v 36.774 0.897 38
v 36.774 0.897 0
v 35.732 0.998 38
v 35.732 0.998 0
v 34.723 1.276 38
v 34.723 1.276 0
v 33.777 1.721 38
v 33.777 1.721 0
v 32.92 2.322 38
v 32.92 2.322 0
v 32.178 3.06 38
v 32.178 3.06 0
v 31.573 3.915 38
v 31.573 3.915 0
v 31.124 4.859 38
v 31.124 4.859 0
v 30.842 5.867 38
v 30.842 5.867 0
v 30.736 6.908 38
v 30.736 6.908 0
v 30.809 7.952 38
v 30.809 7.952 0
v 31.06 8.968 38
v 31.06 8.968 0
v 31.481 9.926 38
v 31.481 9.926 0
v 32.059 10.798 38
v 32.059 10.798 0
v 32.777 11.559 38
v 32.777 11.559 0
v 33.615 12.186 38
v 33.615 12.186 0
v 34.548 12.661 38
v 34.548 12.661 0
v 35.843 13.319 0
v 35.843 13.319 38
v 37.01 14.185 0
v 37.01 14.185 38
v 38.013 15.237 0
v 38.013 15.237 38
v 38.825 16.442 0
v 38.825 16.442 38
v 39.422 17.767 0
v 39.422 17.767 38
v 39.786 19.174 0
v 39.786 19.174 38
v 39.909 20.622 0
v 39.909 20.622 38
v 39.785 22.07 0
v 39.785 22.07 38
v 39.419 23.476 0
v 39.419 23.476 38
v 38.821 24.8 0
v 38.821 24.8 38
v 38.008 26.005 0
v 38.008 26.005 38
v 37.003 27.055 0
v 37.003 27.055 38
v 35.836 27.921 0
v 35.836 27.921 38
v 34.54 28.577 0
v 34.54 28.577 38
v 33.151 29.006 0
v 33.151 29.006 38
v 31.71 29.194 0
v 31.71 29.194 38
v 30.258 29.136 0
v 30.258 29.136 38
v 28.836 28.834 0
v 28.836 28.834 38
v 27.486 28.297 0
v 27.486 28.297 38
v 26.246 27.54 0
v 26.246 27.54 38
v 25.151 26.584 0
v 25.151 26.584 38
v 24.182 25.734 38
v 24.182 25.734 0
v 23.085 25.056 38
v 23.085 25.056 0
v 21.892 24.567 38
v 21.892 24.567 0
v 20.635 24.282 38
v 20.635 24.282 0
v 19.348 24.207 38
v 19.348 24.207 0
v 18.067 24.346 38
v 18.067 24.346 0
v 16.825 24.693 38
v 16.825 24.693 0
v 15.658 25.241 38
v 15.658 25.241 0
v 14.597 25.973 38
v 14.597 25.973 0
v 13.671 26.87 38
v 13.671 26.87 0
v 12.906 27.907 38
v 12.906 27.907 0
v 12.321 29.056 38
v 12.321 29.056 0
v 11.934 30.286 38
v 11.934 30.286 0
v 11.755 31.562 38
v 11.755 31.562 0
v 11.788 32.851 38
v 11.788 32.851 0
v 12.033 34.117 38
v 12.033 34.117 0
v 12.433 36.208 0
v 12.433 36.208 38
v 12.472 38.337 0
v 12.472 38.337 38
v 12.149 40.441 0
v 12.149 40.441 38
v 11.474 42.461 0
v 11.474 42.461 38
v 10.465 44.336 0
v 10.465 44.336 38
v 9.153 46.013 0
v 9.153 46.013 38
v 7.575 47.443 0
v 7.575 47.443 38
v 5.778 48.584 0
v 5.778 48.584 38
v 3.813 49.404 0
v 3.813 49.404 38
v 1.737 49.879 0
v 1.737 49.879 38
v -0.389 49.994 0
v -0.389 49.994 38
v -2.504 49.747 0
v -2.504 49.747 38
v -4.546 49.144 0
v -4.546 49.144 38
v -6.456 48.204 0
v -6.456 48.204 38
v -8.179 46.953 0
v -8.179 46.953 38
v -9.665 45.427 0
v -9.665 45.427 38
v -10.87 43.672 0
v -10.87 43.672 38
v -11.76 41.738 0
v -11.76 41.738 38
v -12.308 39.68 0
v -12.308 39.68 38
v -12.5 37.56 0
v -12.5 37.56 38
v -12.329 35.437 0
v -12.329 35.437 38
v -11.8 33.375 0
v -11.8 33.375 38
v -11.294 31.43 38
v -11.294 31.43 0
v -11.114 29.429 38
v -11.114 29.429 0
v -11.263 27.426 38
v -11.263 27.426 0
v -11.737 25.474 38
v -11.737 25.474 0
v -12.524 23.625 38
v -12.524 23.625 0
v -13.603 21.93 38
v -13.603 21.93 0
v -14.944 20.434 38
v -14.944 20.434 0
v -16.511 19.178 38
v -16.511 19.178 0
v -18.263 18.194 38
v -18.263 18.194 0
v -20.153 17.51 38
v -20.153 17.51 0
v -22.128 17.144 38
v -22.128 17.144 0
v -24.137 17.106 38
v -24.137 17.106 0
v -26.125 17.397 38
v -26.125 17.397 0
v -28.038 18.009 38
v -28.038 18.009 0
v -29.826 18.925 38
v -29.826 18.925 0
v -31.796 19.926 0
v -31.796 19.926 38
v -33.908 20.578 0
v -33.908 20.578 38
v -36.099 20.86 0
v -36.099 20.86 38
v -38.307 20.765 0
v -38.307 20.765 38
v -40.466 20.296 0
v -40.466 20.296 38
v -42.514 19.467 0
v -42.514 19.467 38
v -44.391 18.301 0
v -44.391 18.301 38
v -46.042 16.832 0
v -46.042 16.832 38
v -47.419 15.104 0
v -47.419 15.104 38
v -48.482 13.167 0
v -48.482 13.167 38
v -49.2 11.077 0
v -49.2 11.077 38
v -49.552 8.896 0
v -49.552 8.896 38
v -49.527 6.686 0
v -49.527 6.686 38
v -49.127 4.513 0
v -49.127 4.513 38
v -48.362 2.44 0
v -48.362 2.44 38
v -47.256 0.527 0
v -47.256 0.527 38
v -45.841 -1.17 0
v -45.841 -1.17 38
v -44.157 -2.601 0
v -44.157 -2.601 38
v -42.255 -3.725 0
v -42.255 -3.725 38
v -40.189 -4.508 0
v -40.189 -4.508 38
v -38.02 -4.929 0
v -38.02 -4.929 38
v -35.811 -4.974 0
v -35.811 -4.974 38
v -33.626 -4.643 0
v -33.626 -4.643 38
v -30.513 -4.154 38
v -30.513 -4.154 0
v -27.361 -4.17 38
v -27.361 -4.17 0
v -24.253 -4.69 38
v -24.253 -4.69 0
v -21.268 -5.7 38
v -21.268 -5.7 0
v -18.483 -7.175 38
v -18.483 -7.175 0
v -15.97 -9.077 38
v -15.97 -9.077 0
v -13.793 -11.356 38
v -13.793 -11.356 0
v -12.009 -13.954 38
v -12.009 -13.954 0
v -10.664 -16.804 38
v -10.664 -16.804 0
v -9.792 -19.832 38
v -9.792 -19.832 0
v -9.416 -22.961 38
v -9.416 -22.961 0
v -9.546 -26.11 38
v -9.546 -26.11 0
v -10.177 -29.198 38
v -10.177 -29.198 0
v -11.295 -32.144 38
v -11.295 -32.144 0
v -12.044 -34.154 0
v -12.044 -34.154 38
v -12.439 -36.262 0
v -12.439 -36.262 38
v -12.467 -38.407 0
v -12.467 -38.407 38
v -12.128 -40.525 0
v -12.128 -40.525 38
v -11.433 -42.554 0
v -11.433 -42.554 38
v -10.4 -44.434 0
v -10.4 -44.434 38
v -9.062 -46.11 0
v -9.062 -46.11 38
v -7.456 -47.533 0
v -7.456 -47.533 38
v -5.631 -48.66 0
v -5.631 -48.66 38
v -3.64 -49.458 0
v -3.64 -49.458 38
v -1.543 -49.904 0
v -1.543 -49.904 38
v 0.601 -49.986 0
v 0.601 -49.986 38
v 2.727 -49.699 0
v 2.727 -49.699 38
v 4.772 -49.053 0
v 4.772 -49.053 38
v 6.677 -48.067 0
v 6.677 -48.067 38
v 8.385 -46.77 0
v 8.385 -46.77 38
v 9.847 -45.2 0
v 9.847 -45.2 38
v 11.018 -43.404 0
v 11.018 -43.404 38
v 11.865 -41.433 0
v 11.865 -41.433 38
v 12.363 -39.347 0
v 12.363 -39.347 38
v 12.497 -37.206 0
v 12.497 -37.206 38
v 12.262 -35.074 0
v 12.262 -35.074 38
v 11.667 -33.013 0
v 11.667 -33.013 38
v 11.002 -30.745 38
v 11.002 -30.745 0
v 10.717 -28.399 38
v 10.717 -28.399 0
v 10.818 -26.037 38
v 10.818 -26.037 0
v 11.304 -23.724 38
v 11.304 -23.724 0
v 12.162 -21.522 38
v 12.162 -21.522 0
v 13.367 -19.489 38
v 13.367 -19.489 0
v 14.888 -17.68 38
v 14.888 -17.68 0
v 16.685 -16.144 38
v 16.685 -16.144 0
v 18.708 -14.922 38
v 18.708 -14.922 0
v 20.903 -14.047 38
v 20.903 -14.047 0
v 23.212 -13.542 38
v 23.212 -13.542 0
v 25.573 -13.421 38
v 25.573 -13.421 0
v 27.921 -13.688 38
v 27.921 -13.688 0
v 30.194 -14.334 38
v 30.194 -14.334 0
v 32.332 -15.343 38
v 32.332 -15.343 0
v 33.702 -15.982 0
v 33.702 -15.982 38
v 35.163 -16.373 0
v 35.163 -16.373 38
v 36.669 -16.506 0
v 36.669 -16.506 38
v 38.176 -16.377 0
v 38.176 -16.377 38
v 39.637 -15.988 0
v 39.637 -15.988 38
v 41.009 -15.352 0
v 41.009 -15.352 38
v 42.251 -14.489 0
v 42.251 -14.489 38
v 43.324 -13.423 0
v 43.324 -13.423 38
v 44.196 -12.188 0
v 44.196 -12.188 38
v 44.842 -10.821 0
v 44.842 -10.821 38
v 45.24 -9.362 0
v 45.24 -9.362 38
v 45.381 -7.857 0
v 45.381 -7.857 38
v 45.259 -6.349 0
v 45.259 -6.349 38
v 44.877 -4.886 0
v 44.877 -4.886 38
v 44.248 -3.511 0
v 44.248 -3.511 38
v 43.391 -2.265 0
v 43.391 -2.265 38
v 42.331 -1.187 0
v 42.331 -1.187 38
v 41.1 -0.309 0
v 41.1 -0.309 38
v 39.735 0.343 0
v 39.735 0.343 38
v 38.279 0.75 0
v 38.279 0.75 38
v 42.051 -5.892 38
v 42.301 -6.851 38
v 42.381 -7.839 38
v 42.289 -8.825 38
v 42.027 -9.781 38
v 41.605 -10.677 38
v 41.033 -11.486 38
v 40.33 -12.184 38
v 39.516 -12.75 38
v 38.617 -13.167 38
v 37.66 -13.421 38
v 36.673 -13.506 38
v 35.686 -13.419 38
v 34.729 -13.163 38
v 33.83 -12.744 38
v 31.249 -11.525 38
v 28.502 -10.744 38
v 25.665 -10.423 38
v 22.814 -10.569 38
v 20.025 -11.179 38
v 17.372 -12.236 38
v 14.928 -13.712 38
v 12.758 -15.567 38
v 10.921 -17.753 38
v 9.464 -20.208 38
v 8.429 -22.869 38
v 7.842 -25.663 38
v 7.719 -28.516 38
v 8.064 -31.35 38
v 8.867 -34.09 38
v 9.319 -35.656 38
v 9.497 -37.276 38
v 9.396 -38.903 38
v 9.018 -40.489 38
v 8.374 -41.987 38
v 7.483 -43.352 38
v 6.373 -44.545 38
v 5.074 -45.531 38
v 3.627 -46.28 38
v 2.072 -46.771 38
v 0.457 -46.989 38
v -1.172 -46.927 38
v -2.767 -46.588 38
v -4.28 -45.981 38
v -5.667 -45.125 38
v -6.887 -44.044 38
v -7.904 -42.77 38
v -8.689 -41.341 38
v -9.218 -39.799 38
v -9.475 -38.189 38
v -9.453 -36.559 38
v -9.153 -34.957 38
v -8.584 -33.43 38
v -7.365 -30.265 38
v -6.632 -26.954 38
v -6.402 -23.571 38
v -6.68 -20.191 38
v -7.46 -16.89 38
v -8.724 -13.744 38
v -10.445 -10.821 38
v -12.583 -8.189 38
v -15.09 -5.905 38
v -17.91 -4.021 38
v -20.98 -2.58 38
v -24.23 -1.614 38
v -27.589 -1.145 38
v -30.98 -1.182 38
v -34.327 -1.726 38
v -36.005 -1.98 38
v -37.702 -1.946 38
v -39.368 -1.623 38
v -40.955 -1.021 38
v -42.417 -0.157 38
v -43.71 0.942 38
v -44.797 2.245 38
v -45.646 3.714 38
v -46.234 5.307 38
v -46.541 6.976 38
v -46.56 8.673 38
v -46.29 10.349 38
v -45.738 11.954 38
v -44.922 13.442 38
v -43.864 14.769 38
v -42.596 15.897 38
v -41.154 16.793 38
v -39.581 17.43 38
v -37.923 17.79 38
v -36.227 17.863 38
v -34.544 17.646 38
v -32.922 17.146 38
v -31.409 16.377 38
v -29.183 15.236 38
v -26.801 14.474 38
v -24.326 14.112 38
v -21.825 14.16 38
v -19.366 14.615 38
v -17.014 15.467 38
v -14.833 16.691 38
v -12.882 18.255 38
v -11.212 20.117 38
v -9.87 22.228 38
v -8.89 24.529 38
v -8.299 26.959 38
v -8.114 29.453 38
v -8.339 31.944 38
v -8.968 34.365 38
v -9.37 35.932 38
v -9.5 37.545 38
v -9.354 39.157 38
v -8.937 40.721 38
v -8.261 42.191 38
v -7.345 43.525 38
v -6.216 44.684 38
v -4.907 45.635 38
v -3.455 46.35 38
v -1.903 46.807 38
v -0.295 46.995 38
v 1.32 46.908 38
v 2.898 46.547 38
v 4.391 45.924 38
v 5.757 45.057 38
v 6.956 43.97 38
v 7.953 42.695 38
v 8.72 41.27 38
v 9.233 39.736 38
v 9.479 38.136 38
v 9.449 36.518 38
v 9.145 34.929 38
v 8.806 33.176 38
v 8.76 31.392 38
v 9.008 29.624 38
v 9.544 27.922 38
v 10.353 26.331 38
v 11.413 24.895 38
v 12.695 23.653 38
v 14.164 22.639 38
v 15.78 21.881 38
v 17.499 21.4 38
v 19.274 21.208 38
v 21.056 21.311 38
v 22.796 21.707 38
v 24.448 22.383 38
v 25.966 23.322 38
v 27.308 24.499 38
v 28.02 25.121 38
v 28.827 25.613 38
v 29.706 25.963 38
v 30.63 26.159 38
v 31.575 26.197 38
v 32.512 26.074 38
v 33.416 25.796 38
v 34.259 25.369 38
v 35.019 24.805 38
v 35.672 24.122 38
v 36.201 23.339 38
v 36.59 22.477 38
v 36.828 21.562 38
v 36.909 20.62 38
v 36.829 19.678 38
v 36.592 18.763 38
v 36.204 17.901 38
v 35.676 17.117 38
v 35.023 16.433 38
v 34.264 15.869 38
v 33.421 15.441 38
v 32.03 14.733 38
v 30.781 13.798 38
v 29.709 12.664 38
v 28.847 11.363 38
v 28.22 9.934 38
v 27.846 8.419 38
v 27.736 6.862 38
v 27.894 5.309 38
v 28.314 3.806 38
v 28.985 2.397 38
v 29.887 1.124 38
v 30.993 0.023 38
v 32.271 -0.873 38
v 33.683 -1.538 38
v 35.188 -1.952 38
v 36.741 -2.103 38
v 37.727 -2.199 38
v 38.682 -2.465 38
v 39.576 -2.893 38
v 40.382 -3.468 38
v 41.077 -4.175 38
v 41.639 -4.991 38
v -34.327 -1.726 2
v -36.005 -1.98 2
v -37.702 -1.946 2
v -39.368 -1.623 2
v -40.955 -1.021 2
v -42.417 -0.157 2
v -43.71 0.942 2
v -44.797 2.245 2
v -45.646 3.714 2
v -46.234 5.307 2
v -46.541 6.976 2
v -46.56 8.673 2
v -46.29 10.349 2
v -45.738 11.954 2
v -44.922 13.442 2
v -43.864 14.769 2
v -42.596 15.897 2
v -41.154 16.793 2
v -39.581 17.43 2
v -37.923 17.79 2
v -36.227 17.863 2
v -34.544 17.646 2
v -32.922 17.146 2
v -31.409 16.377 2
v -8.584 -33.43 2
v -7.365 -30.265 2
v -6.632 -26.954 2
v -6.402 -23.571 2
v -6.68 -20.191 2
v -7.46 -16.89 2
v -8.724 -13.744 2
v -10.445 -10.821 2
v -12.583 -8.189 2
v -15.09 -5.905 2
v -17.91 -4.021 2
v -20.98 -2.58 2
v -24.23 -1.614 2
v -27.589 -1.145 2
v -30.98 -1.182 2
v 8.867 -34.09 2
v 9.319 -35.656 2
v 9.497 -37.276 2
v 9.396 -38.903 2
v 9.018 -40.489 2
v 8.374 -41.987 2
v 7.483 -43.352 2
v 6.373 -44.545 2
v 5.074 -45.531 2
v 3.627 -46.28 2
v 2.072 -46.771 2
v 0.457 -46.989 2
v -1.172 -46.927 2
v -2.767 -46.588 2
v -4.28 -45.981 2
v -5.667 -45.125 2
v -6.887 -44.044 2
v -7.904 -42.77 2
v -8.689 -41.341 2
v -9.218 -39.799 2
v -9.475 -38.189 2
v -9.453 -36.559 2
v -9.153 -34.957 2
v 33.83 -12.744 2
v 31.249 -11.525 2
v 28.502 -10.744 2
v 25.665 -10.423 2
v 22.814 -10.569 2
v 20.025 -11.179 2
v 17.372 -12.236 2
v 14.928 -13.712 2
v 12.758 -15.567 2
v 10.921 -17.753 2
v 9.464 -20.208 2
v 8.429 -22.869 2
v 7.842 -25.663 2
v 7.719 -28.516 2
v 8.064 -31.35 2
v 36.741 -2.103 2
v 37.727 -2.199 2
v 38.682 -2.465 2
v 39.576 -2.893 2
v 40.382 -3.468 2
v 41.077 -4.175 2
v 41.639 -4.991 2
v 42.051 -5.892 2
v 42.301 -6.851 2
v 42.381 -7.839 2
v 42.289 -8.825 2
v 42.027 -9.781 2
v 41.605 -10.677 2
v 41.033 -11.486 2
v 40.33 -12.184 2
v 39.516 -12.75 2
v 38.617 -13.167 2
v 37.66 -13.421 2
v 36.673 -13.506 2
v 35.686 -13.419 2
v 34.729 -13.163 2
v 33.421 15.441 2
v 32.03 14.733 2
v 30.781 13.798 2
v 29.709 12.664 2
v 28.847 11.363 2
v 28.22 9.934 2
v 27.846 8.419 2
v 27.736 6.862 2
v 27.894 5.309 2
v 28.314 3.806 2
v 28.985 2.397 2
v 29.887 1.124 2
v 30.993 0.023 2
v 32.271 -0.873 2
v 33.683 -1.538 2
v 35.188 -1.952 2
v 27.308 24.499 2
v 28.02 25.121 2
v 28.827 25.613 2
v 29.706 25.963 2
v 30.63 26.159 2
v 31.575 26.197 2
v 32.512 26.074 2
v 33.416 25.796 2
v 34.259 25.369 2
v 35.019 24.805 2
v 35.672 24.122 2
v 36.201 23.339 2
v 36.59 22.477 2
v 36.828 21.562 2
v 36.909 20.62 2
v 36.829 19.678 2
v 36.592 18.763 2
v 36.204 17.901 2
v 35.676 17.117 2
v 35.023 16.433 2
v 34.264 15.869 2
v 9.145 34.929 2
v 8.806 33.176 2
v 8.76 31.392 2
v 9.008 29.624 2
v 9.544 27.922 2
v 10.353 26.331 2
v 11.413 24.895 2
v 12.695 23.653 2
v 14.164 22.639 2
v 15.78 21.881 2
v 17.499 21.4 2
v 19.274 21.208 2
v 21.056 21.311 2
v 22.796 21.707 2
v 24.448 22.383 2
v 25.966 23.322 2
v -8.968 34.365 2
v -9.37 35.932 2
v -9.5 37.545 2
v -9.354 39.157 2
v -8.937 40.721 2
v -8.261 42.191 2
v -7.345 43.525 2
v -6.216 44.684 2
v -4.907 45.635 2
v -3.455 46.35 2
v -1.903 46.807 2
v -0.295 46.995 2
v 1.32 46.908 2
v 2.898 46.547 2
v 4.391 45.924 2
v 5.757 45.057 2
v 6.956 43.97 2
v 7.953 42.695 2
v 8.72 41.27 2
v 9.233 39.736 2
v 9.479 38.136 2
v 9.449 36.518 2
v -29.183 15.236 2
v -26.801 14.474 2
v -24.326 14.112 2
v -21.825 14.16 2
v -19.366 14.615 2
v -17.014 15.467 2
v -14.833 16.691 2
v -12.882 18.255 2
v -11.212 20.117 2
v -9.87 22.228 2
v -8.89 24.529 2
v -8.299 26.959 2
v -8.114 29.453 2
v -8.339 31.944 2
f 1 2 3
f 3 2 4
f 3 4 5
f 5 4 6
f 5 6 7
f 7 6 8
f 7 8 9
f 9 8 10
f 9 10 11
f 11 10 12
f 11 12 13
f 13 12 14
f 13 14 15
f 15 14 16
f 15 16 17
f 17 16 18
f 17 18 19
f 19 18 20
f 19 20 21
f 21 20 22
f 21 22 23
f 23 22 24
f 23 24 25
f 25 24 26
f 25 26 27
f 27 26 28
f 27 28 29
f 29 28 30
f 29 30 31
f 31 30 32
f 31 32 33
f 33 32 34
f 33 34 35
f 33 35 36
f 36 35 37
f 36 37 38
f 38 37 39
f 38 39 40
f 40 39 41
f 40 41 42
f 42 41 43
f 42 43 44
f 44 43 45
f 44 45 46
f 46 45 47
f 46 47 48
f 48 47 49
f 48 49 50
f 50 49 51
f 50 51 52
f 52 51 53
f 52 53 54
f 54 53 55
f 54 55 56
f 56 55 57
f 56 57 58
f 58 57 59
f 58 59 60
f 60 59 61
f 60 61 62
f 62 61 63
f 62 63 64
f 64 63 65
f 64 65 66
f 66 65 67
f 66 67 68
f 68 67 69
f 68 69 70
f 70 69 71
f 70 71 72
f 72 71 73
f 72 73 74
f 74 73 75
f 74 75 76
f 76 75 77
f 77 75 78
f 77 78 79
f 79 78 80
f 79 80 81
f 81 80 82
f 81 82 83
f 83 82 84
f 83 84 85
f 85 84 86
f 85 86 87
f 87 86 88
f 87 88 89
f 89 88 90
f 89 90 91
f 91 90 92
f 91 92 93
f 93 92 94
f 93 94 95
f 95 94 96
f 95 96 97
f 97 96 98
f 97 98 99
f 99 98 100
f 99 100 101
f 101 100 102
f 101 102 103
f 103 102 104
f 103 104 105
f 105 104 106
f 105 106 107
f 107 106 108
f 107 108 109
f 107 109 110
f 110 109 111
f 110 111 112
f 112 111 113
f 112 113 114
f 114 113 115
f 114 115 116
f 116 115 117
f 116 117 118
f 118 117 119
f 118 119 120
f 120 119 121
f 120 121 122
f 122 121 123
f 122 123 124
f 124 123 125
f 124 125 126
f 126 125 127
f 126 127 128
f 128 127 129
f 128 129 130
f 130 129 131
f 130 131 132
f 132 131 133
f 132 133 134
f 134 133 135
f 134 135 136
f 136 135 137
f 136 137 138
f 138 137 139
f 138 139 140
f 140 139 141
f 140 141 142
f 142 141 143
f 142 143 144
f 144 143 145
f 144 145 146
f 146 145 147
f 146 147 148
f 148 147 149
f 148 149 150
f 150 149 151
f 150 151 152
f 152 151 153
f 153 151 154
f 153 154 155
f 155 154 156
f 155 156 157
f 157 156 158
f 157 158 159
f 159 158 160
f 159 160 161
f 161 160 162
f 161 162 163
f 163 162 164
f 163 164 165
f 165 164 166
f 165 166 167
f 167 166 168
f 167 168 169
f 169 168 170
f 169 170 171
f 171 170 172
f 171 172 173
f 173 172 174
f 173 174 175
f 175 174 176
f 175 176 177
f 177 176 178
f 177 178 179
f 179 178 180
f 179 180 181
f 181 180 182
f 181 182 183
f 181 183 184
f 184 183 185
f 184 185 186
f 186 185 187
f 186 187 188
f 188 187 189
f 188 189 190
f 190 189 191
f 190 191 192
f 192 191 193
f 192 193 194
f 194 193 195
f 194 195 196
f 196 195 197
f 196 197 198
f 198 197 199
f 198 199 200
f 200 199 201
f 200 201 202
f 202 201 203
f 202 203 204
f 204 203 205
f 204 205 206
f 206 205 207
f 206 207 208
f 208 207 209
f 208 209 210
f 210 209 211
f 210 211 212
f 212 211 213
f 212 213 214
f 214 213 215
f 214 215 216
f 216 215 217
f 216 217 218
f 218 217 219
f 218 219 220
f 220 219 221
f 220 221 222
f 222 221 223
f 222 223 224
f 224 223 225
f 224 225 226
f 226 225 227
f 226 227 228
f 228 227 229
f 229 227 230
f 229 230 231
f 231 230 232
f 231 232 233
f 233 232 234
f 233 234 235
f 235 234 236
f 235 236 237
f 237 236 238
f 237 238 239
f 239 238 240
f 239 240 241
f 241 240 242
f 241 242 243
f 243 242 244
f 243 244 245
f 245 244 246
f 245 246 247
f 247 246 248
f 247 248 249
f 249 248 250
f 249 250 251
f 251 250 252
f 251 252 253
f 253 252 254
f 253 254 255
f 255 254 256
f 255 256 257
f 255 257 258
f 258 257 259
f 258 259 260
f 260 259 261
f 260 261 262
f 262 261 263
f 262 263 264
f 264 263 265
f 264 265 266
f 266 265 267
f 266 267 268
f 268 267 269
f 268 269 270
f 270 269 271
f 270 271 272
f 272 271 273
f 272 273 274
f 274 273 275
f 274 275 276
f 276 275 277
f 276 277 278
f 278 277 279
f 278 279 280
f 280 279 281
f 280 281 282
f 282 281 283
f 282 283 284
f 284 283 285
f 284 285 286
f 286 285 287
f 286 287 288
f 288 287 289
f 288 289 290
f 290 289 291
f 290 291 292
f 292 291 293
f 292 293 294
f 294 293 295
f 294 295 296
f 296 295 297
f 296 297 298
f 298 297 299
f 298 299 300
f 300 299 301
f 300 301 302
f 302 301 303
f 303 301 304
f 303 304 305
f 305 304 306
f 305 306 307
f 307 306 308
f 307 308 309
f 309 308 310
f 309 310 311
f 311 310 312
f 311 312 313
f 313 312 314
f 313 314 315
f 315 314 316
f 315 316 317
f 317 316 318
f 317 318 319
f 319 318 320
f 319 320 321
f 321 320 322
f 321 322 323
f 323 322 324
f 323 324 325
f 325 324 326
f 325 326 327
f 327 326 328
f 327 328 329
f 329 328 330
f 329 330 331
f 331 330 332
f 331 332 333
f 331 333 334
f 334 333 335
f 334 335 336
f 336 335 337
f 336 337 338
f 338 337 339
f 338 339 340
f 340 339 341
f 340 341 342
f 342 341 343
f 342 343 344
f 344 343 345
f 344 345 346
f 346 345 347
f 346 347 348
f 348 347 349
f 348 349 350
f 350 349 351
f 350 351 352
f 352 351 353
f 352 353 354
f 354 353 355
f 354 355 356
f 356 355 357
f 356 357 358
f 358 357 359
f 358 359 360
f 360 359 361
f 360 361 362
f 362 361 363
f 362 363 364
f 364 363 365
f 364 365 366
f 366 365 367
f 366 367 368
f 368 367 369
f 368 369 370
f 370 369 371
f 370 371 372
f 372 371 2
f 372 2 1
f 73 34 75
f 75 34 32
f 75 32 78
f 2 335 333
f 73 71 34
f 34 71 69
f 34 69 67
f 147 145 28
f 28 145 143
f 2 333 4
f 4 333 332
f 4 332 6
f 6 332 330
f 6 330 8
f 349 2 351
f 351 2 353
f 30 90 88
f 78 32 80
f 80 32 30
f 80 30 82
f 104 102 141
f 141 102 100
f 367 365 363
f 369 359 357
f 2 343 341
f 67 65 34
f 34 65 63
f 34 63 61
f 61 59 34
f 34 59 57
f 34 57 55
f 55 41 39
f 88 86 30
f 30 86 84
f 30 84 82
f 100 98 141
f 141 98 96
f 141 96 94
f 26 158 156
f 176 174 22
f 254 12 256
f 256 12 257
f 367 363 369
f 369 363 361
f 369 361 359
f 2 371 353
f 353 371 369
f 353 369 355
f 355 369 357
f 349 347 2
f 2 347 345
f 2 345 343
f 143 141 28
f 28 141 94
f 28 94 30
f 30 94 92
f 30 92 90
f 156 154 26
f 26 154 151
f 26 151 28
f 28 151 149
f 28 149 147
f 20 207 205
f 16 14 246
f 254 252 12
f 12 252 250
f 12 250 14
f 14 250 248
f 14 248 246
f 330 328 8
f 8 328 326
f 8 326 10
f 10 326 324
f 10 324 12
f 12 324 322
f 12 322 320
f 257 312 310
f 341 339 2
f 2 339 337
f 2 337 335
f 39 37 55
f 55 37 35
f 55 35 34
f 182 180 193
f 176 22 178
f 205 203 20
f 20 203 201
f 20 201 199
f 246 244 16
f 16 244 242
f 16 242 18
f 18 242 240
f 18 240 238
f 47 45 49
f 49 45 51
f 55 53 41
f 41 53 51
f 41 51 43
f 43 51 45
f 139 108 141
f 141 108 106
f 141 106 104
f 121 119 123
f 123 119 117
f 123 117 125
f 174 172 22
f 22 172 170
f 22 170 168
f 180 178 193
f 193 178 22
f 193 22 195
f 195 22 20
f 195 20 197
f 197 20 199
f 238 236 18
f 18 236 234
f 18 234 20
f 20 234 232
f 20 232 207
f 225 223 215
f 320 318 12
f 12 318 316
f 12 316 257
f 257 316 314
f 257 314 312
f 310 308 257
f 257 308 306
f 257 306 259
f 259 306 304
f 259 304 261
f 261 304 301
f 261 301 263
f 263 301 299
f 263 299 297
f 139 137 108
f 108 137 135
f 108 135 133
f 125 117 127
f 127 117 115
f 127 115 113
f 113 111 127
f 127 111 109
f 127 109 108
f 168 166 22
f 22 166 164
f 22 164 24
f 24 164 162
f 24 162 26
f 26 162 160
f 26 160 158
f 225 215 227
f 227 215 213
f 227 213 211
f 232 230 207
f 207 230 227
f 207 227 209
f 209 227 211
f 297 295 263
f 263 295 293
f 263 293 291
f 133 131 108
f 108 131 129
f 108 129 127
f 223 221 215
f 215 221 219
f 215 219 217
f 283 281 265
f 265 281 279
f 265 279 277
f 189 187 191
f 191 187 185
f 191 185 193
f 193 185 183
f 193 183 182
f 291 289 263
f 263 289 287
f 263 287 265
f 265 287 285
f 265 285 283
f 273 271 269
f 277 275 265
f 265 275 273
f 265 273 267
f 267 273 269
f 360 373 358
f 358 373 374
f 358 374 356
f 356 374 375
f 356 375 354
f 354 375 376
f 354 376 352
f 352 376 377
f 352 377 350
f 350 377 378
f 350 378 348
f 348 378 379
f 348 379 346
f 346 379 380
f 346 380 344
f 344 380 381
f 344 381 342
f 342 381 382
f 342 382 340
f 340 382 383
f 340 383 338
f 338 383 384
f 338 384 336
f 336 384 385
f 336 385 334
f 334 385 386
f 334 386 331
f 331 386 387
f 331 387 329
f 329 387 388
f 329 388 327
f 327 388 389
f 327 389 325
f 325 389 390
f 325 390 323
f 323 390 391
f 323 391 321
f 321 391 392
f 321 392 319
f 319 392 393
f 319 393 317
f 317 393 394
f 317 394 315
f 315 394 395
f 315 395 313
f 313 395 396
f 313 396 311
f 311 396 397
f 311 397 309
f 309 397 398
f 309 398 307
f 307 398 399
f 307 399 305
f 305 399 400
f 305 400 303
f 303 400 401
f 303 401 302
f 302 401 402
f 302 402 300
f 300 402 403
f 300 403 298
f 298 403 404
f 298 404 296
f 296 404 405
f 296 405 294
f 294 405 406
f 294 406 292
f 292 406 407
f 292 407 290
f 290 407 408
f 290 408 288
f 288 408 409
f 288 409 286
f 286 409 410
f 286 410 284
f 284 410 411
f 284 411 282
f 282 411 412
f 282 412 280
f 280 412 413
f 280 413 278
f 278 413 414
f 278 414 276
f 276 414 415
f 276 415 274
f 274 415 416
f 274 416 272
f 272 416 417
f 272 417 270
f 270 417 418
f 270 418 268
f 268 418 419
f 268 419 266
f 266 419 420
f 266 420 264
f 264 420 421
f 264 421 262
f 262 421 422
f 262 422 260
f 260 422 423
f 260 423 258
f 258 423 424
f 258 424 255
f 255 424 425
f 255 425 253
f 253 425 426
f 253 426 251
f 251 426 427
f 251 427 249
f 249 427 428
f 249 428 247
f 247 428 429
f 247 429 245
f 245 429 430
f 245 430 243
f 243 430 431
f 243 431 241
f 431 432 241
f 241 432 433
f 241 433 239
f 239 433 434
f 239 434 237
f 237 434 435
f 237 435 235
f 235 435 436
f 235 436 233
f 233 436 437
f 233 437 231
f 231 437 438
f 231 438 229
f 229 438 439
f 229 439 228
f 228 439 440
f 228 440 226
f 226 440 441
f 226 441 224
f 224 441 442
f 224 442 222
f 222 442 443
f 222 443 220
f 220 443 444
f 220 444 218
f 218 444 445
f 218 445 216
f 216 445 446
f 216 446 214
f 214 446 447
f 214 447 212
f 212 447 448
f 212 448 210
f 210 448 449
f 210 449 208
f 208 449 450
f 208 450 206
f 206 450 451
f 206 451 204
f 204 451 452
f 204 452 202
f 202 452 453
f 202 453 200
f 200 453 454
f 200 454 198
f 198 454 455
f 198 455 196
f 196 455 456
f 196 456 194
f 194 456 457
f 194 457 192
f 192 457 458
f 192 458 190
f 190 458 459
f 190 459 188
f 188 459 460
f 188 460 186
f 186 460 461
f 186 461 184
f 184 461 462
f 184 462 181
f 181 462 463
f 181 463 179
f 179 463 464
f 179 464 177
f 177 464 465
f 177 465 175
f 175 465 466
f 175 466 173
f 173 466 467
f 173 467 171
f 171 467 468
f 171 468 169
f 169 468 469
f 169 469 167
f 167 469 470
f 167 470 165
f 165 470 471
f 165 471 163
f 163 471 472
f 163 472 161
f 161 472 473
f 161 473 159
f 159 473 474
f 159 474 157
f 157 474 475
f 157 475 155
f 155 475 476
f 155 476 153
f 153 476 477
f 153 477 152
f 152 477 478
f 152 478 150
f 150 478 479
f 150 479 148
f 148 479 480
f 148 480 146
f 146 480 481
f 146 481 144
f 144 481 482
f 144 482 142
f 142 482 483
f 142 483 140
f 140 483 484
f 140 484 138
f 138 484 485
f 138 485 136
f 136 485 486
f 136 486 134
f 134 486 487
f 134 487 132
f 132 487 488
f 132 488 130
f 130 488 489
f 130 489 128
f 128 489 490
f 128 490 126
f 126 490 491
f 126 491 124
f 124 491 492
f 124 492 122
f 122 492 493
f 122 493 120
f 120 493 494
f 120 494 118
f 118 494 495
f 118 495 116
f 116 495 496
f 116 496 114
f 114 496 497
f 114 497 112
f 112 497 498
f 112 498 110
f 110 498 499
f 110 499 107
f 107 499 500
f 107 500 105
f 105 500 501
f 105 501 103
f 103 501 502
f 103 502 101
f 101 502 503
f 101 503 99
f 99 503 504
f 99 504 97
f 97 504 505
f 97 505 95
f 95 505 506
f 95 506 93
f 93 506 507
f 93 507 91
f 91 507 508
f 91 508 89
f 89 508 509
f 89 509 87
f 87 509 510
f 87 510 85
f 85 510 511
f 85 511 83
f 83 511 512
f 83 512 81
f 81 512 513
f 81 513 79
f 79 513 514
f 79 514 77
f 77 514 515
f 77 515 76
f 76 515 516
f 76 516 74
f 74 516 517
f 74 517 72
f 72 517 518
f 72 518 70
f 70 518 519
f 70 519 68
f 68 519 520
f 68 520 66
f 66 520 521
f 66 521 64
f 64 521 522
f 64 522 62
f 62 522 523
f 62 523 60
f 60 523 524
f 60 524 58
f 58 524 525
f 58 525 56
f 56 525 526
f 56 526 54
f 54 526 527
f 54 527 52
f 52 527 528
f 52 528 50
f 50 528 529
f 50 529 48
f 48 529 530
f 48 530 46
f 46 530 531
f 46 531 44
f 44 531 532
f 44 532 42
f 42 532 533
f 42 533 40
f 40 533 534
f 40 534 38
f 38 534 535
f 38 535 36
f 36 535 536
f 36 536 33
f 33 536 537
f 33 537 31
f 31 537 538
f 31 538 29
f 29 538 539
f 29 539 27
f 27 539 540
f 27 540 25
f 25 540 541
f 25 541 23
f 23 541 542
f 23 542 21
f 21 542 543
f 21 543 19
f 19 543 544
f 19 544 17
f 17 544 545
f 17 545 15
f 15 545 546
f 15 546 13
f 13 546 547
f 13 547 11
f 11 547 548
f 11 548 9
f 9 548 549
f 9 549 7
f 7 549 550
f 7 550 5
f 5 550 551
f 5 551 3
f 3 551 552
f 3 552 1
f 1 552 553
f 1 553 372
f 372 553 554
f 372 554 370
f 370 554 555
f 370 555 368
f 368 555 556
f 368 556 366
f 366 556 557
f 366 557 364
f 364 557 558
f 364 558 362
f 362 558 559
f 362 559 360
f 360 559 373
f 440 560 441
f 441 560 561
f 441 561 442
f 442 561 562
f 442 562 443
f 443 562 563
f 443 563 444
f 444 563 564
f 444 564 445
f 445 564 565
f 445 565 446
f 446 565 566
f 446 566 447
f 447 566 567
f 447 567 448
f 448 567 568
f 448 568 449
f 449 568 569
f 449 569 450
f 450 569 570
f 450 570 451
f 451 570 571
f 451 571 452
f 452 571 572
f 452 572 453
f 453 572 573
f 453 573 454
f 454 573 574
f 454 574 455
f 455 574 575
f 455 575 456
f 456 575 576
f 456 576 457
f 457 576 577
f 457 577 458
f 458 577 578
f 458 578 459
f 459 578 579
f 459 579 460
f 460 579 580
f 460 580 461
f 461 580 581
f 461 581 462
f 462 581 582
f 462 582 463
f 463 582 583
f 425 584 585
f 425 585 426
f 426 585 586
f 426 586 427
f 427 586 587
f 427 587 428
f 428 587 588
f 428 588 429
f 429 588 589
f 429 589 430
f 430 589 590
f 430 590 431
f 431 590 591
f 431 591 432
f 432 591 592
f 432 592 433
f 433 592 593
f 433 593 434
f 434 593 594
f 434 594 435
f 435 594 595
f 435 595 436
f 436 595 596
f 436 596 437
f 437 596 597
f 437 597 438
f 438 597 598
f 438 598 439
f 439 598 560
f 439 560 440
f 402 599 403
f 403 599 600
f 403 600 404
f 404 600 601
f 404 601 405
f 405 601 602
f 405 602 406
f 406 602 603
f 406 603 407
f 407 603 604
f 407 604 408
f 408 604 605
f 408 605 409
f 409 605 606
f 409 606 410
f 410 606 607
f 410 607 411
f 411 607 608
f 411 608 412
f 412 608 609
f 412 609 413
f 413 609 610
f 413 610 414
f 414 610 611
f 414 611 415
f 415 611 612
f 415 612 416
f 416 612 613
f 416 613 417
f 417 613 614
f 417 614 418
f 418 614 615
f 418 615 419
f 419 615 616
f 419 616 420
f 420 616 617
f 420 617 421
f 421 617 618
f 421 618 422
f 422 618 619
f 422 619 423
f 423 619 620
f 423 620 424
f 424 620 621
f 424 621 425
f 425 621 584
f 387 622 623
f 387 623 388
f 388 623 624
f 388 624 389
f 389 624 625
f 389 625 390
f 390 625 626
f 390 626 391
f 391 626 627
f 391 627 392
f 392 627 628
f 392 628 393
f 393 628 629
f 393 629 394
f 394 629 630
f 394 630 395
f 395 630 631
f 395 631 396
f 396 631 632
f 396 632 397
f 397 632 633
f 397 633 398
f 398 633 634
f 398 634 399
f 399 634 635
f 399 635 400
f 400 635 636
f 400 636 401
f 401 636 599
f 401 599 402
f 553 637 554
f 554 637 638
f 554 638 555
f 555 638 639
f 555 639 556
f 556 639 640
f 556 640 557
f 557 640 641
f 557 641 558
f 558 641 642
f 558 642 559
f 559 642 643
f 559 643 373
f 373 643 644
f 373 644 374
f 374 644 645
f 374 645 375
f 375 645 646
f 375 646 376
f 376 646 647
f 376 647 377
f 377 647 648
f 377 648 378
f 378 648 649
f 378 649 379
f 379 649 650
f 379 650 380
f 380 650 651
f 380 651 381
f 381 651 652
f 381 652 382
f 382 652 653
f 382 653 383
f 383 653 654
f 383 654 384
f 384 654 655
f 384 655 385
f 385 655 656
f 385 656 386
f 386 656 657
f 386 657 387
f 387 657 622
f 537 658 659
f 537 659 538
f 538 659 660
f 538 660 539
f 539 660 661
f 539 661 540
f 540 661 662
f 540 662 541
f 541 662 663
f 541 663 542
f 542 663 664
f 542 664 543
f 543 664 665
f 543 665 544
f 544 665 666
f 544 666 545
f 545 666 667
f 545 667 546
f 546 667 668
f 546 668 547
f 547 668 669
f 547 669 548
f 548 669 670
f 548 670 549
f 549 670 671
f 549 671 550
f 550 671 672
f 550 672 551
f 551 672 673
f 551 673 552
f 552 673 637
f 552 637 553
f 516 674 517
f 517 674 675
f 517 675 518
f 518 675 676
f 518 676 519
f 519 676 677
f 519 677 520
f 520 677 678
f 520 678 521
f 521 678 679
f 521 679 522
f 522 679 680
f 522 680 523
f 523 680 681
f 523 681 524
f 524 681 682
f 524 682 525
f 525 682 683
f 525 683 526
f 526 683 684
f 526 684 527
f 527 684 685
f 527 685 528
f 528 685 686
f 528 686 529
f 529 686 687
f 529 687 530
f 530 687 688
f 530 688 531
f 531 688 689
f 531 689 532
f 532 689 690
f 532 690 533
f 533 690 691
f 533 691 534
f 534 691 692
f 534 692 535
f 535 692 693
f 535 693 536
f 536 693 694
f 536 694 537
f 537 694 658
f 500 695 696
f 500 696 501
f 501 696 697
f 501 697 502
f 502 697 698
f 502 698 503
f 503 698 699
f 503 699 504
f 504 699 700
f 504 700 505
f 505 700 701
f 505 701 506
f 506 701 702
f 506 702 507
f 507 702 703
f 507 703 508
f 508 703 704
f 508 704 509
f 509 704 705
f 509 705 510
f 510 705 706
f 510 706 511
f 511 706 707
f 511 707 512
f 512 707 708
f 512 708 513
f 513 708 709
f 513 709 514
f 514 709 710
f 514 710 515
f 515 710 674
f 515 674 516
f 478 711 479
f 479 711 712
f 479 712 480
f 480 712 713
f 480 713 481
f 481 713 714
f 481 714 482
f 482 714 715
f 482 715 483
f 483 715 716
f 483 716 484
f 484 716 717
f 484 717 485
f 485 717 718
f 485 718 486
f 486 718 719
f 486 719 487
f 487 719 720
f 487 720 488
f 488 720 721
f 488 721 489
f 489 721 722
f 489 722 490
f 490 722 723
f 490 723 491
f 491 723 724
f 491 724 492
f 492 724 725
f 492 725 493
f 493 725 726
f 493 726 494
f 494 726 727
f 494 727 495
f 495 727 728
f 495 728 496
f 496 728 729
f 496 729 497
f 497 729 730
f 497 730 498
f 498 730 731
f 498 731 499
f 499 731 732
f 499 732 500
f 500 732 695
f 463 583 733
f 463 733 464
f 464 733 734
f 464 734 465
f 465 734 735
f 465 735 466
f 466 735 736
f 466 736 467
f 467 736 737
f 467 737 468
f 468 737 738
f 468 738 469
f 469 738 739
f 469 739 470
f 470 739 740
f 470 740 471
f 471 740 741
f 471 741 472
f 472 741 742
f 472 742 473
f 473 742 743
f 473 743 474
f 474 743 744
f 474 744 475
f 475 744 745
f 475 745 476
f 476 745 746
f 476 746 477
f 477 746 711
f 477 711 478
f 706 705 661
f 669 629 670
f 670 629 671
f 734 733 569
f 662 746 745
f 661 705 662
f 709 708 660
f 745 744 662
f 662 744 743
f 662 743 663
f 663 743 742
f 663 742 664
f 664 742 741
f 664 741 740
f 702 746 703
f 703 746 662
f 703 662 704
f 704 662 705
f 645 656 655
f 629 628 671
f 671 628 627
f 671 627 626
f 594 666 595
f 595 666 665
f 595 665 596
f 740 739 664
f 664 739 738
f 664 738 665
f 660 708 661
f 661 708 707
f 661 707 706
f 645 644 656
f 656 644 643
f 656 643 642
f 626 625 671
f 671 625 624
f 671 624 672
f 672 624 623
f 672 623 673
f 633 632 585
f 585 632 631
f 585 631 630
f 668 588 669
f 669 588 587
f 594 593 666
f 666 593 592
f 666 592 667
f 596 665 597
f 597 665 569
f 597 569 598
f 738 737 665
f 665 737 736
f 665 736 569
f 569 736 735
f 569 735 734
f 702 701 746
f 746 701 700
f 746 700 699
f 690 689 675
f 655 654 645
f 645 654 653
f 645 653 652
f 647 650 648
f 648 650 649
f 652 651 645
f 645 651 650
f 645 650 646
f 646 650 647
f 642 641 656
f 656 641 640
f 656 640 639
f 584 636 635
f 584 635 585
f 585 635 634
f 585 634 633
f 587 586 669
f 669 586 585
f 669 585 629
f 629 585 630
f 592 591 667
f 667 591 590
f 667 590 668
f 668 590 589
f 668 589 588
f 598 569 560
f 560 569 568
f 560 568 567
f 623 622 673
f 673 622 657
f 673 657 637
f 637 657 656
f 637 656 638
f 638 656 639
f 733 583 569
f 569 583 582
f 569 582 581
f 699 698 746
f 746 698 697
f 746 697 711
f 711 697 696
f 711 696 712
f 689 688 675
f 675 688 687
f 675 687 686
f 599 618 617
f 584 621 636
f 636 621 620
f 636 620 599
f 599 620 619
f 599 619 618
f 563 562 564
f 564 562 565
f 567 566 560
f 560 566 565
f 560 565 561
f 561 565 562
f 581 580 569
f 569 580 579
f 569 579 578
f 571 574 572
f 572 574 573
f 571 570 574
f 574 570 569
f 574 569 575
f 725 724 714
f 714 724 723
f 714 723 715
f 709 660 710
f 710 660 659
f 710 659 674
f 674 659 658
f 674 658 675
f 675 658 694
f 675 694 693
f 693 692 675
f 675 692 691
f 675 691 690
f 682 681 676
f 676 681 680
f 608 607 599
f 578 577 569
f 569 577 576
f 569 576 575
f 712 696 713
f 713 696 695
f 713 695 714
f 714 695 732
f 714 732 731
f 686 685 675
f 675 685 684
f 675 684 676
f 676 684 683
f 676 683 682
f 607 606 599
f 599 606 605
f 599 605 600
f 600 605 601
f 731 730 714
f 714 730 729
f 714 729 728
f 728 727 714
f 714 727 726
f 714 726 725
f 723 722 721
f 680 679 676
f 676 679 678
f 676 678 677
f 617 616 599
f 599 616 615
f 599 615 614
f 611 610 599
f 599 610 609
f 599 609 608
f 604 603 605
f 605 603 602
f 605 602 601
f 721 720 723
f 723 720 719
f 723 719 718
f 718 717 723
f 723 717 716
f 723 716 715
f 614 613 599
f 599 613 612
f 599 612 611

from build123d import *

# Parameters (mm, degrees)
BOSS_EXTRUDE2_DEPTH = 2
BOSS_EXTRUDE3_DEPTH = 36


with BuildPart() as part:
    # Sketch1 → Boss-Extrude2 (new body)
    with BuildSketch(Plane.XY):
        with BuildLine():
            ThreePointArc((36.77383834, 0.897309378), (30.841544287, 5.867048301), (34.547643901, 12.660813336))
            ThreePointArc((34.547643901, 12.660813336), (38.439664011, 25.419866138), (25.151092425, 26.583959838))
            ThreePointArc((25.151092425, 26.583959838), (15.658221947, 25.240839631), (12.033396672, 34.116604585))
            ThreePointArc((12.033396672, 34.116604585), (-0.388796102, 49.993952041), (-11.79974319, 33.374947194))
            ThreePointArc((-11.79974319, 33.374947194), (-15.701881175, 19.773765205), (-29.82628778, 18.925254505))
            ThreePointArc((-29.82628778, 18.925254505), (-49.422493782, 9.994241781), (-33.625891529, -4.642753649))
            ThreePointArc((-33.625891529, -4.642753649), (-13.793191326, -11.35592194), (-11.294565378, -32.144368111))
            ThreePointArc((-11.294565378, -32.144368111), (-0.472558297, -49.991064352), (11.666927416, -33.013040598))
            ThreePointArc((11.666927416, -33.013040598), (15.7550057, -16.875289061), (32.331827923, -15.342848629))
            ThreePointArc((32.331827923, -15.342848629), (45.072719303, -10.100170445), (36.77383834, 0.897309378))
        make_face()
    extrude(amount=BOSS_EXTRUDE2_DEPTH)

    # Sketch2 → Boss-Extrude3 (add)
    with BuildSketch(Plane.XY.offset(2)):
        with BuildLine():
            ThreePointArc((34.547643726, 12.660813265), (30.841544291, 5.867048278), (36.773838199, 0.89730938))
            ThreePointArc((36.773838199, 0.89730938), (45.072719321, -10.100170381), (32.331827916, -15.342848625))
            ThreePointArc((32.331827916, -15.342848625), (15.755005651, -16.875289103), (11.666927459, -33.013040709))
            ThreePointArc((11.666927459, -33.013040709), (-0.472558319, -49.991064352), (-11.29456541, -32.14436818))
            ThreePointArc((-11.29456541, -32.14436818), (-13.793191238, -11.355922049), (-33.62589133, -4.642753601))
            ThreePointArc((-33.62589133, -4.642753601), (-49.422493786, 9.994241754), (-29.826287652, 18.925254425))
            ThreePointArc((-29.826287652, 18.925254425), (-15.701881135, 19.773765237), (-11.799743174, 33.374947148))
            ThreePointArc((-11.799743174, 33.374947148), (-0.388796168, 49.993952038), (12.033396695, 34.116604666))
            ThreePointArc((12.033396695, 34.116604666), (15.65822203, 25.240839584), (25.151092616, 26.583960036))
            ThreePointArc((25.151092616, 26.583960036), (38.439664141, 25.419865946), (34.547643726, 12.660813265))
        make_face()
        with BuildLine():
            ThreePointArc((-31.408898966, 16.376658454), (-13.825543659, 17.432962452), (-8.967804812, 34.364959833))
            ThreePointArc((-8.967804812, 34.364959833), (-0.295485088, 46.995403549), (9.145381488, 34.928619546))
            ThreePointArc((9.145381488, 34.928619546), (14.164303925, 22.639261467), (27.308104459, 24.498942072))
            ThreePointArc((27.308104459, 24.498942072), (35.952987853, 23.741640383), (33.421033039, 15.4412356))
            ThreePointArc((33.421033039, 15.4412356), (27.893864073, 5.309211984), (36.741114762, -2.102512145))
            ThreePointArc((36.741114762, -2.102512145), (42.179011051, -9.308682891), (33.830458389, -12.743982198))
            ThreePointArc((33.830458389, -12.743982198), (13.805341223, -14.595199495), (8.866864868, -34.089910939))
            ThreePointArc((8.866864868, -34.089910939), (-0.359144322, -46.993208907), (-8.583869712, -33.429719817))
            ThreePointArc((-8.583869712, -33.429719817), (-11.464280061, -9.464844913), (-34.327373037, -1.725919116))
            ThreePointArc((-34.327373037, -1.725919116), (-46.460737086, 9.516751182), (-31.408898966, 16.376658454))
        make_face(mode=Mode.SUBTRACT)
    extrude(amount=BOSS_EXTRUDE3_DEPTH)


solid = part.part
